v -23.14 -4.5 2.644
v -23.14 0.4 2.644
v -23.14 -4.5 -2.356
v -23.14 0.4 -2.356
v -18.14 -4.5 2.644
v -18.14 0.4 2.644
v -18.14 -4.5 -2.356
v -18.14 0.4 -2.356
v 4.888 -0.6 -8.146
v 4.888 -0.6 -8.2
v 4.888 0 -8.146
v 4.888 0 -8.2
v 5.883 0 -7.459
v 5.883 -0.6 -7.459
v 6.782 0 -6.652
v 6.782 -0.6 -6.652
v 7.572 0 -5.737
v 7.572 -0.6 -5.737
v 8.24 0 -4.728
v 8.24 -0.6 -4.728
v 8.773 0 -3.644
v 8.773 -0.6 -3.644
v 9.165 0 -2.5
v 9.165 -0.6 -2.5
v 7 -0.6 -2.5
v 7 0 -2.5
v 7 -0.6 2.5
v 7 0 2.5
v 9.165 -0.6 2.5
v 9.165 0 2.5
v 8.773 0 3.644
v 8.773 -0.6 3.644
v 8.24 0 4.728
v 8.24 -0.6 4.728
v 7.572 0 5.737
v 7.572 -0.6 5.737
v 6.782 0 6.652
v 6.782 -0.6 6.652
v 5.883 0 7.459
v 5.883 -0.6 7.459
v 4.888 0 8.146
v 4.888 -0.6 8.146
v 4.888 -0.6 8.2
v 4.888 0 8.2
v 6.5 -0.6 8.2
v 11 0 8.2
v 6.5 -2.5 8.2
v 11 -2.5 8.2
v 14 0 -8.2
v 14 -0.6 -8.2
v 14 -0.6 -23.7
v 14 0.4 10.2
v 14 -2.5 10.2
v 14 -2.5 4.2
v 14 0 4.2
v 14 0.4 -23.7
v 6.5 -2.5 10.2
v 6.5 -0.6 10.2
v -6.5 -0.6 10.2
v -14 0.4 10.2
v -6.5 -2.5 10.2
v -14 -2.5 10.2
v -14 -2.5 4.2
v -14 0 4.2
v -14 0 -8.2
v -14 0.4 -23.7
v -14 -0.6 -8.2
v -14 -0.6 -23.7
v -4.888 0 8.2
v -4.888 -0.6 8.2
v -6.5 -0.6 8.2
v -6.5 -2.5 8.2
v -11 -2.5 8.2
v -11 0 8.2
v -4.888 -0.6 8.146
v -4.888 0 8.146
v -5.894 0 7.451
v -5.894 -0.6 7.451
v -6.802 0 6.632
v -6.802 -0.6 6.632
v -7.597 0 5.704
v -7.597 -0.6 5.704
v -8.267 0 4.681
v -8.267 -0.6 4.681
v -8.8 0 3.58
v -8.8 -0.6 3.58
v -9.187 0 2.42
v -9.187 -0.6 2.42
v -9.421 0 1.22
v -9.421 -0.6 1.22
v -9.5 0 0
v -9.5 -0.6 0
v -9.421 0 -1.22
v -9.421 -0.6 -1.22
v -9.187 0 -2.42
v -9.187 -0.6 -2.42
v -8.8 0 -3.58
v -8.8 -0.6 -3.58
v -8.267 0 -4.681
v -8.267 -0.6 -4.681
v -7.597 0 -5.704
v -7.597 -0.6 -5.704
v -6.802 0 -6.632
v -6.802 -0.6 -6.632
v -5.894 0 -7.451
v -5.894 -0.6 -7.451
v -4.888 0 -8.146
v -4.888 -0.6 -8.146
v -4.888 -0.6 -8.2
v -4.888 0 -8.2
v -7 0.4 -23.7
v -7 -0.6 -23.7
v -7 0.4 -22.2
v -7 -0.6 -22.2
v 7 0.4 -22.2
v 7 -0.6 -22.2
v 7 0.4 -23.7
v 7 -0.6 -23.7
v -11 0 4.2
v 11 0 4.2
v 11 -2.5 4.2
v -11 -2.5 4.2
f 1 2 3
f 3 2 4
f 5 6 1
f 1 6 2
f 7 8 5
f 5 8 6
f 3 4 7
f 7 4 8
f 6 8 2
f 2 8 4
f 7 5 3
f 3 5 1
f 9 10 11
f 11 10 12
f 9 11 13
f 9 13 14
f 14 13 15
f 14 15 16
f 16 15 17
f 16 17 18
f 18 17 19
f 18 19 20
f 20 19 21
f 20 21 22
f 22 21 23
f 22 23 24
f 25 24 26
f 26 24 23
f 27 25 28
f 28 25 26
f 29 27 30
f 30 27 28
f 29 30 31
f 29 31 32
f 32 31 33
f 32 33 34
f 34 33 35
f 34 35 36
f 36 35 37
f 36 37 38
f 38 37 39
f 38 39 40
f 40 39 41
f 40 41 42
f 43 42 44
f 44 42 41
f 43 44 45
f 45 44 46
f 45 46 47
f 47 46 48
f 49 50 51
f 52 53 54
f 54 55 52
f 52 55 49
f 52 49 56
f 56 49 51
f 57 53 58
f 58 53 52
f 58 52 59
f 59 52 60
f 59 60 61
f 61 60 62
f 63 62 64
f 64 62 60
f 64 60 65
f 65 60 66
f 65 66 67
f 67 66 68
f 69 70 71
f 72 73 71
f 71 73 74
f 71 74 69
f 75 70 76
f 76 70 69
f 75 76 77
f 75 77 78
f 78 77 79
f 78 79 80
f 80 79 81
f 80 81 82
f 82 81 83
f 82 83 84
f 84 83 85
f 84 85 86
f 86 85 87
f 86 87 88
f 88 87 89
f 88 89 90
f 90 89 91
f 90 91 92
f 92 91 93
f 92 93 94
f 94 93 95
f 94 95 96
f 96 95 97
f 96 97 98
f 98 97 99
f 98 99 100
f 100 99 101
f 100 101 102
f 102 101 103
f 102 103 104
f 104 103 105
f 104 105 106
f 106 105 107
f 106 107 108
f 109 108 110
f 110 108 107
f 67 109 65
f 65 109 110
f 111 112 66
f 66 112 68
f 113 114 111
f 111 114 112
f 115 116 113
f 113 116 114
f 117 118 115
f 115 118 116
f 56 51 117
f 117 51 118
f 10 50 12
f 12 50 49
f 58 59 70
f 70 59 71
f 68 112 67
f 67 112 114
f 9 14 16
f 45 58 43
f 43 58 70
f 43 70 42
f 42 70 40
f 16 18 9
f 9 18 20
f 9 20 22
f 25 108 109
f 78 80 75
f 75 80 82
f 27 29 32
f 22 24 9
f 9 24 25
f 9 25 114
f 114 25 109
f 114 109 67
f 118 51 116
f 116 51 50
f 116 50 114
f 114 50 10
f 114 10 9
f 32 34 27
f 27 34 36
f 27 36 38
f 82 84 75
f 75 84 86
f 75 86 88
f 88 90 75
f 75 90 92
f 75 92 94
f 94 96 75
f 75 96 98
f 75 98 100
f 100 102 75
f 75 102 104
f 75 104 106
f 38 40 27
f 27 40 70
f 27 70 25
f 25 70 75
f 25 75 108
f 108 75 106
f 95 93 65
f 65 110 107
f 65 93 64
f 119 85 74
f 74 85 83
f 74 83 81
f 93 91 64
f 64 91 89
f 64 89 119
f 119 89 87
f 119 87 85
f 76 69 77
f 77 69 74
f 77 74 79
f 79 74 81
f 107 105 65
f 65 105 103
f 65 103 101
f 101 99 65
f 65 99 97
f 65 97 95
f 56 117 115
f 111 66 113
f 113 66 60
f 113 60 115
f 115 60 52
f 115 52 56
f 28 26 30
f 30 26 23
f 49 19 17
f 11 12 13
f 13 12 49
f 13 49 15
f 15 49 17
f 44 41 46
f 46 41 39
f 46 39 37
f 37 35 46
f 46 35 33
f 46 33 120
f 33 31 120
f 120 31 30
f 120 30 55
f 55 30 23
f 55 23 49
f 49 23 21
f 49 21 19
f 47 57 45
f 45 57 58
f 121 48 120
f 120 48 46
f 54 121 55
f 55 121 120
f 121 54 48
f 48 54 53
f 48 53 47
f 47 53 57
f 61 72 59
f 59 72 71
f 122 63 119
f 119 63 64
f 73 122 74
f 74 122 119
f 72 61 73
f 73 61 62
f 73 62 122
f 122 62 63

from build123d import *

# Parameters (mm, degrees)
BOSS_EXTRUDE1_DEPTH      = 0.6
BOSS_EXTRUDE3_DEPTH      = 0.4
BOSS_EXTRUDE3_DEPTH_BACK = 4.5
SKETCH3_W                = 5
SKETCH3_H                = 5
BOSS_EXTRUDE5_DEPTH      = 0.4
BOSS_EXTRUDE6_DEPTH      = 2.5


with BuildPart() as part:
    # Sketch1 → Boss-Extrude1 (new body)
    with BuildSketch(Plane(origin=(0, 0, 0), x_dir=(1, 0, 0), z_dir=(0, 1, 0))):
        with BuildLine():
            Line((-4.887739764, -8.146164742), (-4.887739764, -8.2))
            Line((-4.887739764, -8.2), (-14, -8.2))
            Line((-14, -8.2), (-14, -10.2))
            Line((-14, -10.2), (14, -10.2))
            Line((14, -10.2), (14, -8.2))
            Line((14, -8.2), (4.887739764, -8.2))
            Line((4.887739764, -8.2), (4.887739764, -8.146164742))
            ThreePointArc((4.887739764, -8.146164742), (7.572366309, -5.736660046), (9.16515139, -2.5))
            Line((9.16515139, -2.5), (7, -2.5))
            Line((7, -2.5), (7, 2.5))
            Line((7, 2.5), (9.16515139, 2.5))
            ThreePointArc((9.16515139, 2.5), (7.572366309, 5.736660046), (4.887739764, 8.146164742))
            Line((4.887739764, 8.146164742), (4.887739764, 8.2))
            Line((4.887739764, 8.2), (14, 8.2))
            Line((14, 8.2), (14, 11.2))
            Line((14, 11.2), (14, 21.7))
            Line((14, 21.7), (14, 23.7))
            Line((14, 23.7), (7, 23.7))
            Line((7, 23.7), (7, 22.2))
            Line((7, 22.2), (-7, 22.2))
            Line((-7, 22.2), (-7, 23.7))
            Line((-7, 23.7), (-14, 23.7))
            Line((-14, 23.7), (-14, 23.208379168))
            Line((-14, 23.208379168), (-14, 11.208379168))
            Line((-14, 11.208379168), (-14, 8.2))
            Line((-14, 8.2), (-4.887739764, 8.2))
            Line((-4.887739764, 8.2), (-4.887739764, 8.146164742))
            ThreePointArc((-4.887739764, 8.146164742), (-9.5, 0), (-4.887739764, -8.146164742))
        make_face()
    extrude(amount=-BOSS_EXTRUDE1_DEPTH)

    # Sketch4 → Boss-Extrude5 (add)
    with BuildSketch(Plane(origin=(0, 0, 0), x_dir=(1, 0, 0), z_dir=(0, 1, 0))):
        Polygon((-14, 23.7), (-7, 23.7), (-7, 22.2), (7, 22.2), (7, 23.7), (14, 23.7), (14, 22.2), (14, -10.2), (-14, -10.2), (-14, 22.2), align=None)
    extrude(amount=BOSS_EXTRUDE5_DEPTH)

    # Sketch5 → Boss-Extrude6 (add)
    with BuildSketch(Plane(origin=(0, 0, 0), x_dir=(1, 0, 0), z_dir=(0, 1, 0))):
        Polygon((-11, -8.2), (-11, -4.2), (-14, -4.2), (-14, -10.2), (-9.887739764, -10.2), (-6.5, -10.2), (-6.5, -8.2), align=None)
        Polygon((9.887739764, -10.2), (6.5, -10.2), (6.5, -8.2), (11, -8.2), (11, -4.2), (14, -4.2), (14, -10.2), align=None)
    extrude(amount=-BOSS_EXTRUDE6_DEPTH)


with BuildPart() as body_2:
    # Sketch3 → Boss-Extrude3 (new, two sides: drawn at the far end of the back side and taken through both)
    with BuildSketch(Plane(origin=(0, 0, 0), x_dir=(1, 0, 0), z_dir=(0, 1, 0)).offset(-BOSS_EXTRUDE3_DEPTH_BACK)):
        with Locations((-20.640136174, -0.144063269)):
            Rectangle(SKETCH3_W, SKETCH3_H)
    extrude(amount=BOSS_EXTRUDE3_DEPTH + BOSS_EXTRUDE3_DEPTH_BACK)


solid = Compound([part.part, body_2.part])
